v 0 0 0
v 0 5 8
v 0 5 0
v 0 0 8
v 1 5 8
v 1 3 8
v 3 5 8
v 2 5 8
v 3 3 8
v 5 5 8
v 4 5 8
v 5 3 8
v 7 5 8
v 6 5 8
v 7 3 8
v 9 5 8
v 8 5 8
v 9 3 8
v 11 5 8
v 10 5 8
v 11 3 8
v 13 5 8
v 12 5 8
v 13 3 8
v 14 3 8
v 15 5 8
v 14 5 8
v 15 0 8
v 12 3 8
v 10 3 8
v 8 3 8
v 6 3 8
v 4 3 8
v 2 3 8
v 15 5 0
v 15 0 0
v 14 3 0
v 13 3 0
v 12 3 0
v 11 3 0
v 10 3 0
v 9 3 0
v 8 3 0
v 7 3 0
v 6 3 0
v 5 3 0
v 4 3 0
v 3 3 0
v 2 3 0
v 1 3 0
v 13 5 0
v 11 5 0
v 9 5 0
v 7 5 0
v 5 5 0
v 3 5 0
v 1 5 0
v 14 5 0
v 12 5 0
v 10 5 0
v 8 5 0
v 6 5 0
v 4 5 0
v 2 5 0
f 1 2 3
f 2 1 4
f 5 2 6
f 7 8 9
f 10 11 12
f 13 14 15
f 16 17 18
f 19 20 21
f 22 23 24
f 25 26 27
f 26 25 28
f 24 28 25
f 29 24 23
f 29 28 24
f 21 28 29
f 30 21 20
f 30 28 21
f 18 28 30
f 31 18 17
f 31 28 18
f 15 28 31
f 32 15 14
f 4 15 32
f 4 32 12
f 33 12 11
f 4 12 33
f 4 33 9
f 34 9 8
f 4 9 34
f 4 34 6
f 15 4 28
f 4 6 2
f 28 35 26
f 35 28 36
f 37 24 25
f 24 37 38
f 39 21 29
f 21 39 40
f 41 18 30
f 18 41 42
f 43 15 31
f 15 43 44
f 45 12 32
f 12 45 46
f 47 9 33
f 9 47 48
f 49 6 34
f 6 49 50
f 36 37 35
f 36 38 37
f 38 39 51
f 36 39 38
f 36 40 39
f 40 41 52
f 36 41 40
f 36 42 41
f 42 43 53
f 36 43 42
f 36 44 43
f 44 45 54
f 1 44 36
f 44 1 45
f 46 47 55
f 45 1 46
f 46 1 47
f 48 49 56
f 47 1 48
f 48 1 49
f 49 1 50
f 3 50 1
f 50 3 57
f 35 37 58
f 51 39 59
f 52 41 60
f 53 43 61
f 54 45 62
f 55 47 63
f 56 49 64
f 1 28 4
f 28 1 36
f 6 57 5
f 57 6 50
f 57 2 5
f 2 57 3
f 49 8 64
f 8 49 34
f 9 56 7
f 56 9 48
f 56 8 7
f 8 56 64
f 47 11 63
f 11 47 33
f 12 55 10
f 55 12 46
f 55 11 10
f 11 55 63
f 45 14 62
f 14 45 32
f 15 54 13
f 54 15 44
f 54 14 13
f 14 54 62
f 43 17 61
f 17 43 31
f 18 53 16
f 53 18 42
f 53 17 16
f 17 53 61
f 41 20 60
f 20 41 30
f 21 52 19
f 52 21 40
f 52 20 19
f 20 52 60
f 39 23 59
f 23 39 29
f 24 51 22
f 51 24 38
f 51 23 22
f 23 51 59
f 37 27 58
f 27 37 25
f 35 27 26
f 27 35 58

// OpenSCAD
cube([15,3,8]);
translate([0,3,0])cube([1,2,8]);
translate([2,3,0])cube([1,2,8]);
translate([4,3,0])cube([1,2,8]);
translate([6,3,0])cube([1,2,8]);
translate([8,3,0])cube([1,2,8]);
translate([10,3,0])cube([1,2,8]);
translate([12,3,0])cube([1,2,8]);
translate([14,3,0])cube([1,2,8]);
